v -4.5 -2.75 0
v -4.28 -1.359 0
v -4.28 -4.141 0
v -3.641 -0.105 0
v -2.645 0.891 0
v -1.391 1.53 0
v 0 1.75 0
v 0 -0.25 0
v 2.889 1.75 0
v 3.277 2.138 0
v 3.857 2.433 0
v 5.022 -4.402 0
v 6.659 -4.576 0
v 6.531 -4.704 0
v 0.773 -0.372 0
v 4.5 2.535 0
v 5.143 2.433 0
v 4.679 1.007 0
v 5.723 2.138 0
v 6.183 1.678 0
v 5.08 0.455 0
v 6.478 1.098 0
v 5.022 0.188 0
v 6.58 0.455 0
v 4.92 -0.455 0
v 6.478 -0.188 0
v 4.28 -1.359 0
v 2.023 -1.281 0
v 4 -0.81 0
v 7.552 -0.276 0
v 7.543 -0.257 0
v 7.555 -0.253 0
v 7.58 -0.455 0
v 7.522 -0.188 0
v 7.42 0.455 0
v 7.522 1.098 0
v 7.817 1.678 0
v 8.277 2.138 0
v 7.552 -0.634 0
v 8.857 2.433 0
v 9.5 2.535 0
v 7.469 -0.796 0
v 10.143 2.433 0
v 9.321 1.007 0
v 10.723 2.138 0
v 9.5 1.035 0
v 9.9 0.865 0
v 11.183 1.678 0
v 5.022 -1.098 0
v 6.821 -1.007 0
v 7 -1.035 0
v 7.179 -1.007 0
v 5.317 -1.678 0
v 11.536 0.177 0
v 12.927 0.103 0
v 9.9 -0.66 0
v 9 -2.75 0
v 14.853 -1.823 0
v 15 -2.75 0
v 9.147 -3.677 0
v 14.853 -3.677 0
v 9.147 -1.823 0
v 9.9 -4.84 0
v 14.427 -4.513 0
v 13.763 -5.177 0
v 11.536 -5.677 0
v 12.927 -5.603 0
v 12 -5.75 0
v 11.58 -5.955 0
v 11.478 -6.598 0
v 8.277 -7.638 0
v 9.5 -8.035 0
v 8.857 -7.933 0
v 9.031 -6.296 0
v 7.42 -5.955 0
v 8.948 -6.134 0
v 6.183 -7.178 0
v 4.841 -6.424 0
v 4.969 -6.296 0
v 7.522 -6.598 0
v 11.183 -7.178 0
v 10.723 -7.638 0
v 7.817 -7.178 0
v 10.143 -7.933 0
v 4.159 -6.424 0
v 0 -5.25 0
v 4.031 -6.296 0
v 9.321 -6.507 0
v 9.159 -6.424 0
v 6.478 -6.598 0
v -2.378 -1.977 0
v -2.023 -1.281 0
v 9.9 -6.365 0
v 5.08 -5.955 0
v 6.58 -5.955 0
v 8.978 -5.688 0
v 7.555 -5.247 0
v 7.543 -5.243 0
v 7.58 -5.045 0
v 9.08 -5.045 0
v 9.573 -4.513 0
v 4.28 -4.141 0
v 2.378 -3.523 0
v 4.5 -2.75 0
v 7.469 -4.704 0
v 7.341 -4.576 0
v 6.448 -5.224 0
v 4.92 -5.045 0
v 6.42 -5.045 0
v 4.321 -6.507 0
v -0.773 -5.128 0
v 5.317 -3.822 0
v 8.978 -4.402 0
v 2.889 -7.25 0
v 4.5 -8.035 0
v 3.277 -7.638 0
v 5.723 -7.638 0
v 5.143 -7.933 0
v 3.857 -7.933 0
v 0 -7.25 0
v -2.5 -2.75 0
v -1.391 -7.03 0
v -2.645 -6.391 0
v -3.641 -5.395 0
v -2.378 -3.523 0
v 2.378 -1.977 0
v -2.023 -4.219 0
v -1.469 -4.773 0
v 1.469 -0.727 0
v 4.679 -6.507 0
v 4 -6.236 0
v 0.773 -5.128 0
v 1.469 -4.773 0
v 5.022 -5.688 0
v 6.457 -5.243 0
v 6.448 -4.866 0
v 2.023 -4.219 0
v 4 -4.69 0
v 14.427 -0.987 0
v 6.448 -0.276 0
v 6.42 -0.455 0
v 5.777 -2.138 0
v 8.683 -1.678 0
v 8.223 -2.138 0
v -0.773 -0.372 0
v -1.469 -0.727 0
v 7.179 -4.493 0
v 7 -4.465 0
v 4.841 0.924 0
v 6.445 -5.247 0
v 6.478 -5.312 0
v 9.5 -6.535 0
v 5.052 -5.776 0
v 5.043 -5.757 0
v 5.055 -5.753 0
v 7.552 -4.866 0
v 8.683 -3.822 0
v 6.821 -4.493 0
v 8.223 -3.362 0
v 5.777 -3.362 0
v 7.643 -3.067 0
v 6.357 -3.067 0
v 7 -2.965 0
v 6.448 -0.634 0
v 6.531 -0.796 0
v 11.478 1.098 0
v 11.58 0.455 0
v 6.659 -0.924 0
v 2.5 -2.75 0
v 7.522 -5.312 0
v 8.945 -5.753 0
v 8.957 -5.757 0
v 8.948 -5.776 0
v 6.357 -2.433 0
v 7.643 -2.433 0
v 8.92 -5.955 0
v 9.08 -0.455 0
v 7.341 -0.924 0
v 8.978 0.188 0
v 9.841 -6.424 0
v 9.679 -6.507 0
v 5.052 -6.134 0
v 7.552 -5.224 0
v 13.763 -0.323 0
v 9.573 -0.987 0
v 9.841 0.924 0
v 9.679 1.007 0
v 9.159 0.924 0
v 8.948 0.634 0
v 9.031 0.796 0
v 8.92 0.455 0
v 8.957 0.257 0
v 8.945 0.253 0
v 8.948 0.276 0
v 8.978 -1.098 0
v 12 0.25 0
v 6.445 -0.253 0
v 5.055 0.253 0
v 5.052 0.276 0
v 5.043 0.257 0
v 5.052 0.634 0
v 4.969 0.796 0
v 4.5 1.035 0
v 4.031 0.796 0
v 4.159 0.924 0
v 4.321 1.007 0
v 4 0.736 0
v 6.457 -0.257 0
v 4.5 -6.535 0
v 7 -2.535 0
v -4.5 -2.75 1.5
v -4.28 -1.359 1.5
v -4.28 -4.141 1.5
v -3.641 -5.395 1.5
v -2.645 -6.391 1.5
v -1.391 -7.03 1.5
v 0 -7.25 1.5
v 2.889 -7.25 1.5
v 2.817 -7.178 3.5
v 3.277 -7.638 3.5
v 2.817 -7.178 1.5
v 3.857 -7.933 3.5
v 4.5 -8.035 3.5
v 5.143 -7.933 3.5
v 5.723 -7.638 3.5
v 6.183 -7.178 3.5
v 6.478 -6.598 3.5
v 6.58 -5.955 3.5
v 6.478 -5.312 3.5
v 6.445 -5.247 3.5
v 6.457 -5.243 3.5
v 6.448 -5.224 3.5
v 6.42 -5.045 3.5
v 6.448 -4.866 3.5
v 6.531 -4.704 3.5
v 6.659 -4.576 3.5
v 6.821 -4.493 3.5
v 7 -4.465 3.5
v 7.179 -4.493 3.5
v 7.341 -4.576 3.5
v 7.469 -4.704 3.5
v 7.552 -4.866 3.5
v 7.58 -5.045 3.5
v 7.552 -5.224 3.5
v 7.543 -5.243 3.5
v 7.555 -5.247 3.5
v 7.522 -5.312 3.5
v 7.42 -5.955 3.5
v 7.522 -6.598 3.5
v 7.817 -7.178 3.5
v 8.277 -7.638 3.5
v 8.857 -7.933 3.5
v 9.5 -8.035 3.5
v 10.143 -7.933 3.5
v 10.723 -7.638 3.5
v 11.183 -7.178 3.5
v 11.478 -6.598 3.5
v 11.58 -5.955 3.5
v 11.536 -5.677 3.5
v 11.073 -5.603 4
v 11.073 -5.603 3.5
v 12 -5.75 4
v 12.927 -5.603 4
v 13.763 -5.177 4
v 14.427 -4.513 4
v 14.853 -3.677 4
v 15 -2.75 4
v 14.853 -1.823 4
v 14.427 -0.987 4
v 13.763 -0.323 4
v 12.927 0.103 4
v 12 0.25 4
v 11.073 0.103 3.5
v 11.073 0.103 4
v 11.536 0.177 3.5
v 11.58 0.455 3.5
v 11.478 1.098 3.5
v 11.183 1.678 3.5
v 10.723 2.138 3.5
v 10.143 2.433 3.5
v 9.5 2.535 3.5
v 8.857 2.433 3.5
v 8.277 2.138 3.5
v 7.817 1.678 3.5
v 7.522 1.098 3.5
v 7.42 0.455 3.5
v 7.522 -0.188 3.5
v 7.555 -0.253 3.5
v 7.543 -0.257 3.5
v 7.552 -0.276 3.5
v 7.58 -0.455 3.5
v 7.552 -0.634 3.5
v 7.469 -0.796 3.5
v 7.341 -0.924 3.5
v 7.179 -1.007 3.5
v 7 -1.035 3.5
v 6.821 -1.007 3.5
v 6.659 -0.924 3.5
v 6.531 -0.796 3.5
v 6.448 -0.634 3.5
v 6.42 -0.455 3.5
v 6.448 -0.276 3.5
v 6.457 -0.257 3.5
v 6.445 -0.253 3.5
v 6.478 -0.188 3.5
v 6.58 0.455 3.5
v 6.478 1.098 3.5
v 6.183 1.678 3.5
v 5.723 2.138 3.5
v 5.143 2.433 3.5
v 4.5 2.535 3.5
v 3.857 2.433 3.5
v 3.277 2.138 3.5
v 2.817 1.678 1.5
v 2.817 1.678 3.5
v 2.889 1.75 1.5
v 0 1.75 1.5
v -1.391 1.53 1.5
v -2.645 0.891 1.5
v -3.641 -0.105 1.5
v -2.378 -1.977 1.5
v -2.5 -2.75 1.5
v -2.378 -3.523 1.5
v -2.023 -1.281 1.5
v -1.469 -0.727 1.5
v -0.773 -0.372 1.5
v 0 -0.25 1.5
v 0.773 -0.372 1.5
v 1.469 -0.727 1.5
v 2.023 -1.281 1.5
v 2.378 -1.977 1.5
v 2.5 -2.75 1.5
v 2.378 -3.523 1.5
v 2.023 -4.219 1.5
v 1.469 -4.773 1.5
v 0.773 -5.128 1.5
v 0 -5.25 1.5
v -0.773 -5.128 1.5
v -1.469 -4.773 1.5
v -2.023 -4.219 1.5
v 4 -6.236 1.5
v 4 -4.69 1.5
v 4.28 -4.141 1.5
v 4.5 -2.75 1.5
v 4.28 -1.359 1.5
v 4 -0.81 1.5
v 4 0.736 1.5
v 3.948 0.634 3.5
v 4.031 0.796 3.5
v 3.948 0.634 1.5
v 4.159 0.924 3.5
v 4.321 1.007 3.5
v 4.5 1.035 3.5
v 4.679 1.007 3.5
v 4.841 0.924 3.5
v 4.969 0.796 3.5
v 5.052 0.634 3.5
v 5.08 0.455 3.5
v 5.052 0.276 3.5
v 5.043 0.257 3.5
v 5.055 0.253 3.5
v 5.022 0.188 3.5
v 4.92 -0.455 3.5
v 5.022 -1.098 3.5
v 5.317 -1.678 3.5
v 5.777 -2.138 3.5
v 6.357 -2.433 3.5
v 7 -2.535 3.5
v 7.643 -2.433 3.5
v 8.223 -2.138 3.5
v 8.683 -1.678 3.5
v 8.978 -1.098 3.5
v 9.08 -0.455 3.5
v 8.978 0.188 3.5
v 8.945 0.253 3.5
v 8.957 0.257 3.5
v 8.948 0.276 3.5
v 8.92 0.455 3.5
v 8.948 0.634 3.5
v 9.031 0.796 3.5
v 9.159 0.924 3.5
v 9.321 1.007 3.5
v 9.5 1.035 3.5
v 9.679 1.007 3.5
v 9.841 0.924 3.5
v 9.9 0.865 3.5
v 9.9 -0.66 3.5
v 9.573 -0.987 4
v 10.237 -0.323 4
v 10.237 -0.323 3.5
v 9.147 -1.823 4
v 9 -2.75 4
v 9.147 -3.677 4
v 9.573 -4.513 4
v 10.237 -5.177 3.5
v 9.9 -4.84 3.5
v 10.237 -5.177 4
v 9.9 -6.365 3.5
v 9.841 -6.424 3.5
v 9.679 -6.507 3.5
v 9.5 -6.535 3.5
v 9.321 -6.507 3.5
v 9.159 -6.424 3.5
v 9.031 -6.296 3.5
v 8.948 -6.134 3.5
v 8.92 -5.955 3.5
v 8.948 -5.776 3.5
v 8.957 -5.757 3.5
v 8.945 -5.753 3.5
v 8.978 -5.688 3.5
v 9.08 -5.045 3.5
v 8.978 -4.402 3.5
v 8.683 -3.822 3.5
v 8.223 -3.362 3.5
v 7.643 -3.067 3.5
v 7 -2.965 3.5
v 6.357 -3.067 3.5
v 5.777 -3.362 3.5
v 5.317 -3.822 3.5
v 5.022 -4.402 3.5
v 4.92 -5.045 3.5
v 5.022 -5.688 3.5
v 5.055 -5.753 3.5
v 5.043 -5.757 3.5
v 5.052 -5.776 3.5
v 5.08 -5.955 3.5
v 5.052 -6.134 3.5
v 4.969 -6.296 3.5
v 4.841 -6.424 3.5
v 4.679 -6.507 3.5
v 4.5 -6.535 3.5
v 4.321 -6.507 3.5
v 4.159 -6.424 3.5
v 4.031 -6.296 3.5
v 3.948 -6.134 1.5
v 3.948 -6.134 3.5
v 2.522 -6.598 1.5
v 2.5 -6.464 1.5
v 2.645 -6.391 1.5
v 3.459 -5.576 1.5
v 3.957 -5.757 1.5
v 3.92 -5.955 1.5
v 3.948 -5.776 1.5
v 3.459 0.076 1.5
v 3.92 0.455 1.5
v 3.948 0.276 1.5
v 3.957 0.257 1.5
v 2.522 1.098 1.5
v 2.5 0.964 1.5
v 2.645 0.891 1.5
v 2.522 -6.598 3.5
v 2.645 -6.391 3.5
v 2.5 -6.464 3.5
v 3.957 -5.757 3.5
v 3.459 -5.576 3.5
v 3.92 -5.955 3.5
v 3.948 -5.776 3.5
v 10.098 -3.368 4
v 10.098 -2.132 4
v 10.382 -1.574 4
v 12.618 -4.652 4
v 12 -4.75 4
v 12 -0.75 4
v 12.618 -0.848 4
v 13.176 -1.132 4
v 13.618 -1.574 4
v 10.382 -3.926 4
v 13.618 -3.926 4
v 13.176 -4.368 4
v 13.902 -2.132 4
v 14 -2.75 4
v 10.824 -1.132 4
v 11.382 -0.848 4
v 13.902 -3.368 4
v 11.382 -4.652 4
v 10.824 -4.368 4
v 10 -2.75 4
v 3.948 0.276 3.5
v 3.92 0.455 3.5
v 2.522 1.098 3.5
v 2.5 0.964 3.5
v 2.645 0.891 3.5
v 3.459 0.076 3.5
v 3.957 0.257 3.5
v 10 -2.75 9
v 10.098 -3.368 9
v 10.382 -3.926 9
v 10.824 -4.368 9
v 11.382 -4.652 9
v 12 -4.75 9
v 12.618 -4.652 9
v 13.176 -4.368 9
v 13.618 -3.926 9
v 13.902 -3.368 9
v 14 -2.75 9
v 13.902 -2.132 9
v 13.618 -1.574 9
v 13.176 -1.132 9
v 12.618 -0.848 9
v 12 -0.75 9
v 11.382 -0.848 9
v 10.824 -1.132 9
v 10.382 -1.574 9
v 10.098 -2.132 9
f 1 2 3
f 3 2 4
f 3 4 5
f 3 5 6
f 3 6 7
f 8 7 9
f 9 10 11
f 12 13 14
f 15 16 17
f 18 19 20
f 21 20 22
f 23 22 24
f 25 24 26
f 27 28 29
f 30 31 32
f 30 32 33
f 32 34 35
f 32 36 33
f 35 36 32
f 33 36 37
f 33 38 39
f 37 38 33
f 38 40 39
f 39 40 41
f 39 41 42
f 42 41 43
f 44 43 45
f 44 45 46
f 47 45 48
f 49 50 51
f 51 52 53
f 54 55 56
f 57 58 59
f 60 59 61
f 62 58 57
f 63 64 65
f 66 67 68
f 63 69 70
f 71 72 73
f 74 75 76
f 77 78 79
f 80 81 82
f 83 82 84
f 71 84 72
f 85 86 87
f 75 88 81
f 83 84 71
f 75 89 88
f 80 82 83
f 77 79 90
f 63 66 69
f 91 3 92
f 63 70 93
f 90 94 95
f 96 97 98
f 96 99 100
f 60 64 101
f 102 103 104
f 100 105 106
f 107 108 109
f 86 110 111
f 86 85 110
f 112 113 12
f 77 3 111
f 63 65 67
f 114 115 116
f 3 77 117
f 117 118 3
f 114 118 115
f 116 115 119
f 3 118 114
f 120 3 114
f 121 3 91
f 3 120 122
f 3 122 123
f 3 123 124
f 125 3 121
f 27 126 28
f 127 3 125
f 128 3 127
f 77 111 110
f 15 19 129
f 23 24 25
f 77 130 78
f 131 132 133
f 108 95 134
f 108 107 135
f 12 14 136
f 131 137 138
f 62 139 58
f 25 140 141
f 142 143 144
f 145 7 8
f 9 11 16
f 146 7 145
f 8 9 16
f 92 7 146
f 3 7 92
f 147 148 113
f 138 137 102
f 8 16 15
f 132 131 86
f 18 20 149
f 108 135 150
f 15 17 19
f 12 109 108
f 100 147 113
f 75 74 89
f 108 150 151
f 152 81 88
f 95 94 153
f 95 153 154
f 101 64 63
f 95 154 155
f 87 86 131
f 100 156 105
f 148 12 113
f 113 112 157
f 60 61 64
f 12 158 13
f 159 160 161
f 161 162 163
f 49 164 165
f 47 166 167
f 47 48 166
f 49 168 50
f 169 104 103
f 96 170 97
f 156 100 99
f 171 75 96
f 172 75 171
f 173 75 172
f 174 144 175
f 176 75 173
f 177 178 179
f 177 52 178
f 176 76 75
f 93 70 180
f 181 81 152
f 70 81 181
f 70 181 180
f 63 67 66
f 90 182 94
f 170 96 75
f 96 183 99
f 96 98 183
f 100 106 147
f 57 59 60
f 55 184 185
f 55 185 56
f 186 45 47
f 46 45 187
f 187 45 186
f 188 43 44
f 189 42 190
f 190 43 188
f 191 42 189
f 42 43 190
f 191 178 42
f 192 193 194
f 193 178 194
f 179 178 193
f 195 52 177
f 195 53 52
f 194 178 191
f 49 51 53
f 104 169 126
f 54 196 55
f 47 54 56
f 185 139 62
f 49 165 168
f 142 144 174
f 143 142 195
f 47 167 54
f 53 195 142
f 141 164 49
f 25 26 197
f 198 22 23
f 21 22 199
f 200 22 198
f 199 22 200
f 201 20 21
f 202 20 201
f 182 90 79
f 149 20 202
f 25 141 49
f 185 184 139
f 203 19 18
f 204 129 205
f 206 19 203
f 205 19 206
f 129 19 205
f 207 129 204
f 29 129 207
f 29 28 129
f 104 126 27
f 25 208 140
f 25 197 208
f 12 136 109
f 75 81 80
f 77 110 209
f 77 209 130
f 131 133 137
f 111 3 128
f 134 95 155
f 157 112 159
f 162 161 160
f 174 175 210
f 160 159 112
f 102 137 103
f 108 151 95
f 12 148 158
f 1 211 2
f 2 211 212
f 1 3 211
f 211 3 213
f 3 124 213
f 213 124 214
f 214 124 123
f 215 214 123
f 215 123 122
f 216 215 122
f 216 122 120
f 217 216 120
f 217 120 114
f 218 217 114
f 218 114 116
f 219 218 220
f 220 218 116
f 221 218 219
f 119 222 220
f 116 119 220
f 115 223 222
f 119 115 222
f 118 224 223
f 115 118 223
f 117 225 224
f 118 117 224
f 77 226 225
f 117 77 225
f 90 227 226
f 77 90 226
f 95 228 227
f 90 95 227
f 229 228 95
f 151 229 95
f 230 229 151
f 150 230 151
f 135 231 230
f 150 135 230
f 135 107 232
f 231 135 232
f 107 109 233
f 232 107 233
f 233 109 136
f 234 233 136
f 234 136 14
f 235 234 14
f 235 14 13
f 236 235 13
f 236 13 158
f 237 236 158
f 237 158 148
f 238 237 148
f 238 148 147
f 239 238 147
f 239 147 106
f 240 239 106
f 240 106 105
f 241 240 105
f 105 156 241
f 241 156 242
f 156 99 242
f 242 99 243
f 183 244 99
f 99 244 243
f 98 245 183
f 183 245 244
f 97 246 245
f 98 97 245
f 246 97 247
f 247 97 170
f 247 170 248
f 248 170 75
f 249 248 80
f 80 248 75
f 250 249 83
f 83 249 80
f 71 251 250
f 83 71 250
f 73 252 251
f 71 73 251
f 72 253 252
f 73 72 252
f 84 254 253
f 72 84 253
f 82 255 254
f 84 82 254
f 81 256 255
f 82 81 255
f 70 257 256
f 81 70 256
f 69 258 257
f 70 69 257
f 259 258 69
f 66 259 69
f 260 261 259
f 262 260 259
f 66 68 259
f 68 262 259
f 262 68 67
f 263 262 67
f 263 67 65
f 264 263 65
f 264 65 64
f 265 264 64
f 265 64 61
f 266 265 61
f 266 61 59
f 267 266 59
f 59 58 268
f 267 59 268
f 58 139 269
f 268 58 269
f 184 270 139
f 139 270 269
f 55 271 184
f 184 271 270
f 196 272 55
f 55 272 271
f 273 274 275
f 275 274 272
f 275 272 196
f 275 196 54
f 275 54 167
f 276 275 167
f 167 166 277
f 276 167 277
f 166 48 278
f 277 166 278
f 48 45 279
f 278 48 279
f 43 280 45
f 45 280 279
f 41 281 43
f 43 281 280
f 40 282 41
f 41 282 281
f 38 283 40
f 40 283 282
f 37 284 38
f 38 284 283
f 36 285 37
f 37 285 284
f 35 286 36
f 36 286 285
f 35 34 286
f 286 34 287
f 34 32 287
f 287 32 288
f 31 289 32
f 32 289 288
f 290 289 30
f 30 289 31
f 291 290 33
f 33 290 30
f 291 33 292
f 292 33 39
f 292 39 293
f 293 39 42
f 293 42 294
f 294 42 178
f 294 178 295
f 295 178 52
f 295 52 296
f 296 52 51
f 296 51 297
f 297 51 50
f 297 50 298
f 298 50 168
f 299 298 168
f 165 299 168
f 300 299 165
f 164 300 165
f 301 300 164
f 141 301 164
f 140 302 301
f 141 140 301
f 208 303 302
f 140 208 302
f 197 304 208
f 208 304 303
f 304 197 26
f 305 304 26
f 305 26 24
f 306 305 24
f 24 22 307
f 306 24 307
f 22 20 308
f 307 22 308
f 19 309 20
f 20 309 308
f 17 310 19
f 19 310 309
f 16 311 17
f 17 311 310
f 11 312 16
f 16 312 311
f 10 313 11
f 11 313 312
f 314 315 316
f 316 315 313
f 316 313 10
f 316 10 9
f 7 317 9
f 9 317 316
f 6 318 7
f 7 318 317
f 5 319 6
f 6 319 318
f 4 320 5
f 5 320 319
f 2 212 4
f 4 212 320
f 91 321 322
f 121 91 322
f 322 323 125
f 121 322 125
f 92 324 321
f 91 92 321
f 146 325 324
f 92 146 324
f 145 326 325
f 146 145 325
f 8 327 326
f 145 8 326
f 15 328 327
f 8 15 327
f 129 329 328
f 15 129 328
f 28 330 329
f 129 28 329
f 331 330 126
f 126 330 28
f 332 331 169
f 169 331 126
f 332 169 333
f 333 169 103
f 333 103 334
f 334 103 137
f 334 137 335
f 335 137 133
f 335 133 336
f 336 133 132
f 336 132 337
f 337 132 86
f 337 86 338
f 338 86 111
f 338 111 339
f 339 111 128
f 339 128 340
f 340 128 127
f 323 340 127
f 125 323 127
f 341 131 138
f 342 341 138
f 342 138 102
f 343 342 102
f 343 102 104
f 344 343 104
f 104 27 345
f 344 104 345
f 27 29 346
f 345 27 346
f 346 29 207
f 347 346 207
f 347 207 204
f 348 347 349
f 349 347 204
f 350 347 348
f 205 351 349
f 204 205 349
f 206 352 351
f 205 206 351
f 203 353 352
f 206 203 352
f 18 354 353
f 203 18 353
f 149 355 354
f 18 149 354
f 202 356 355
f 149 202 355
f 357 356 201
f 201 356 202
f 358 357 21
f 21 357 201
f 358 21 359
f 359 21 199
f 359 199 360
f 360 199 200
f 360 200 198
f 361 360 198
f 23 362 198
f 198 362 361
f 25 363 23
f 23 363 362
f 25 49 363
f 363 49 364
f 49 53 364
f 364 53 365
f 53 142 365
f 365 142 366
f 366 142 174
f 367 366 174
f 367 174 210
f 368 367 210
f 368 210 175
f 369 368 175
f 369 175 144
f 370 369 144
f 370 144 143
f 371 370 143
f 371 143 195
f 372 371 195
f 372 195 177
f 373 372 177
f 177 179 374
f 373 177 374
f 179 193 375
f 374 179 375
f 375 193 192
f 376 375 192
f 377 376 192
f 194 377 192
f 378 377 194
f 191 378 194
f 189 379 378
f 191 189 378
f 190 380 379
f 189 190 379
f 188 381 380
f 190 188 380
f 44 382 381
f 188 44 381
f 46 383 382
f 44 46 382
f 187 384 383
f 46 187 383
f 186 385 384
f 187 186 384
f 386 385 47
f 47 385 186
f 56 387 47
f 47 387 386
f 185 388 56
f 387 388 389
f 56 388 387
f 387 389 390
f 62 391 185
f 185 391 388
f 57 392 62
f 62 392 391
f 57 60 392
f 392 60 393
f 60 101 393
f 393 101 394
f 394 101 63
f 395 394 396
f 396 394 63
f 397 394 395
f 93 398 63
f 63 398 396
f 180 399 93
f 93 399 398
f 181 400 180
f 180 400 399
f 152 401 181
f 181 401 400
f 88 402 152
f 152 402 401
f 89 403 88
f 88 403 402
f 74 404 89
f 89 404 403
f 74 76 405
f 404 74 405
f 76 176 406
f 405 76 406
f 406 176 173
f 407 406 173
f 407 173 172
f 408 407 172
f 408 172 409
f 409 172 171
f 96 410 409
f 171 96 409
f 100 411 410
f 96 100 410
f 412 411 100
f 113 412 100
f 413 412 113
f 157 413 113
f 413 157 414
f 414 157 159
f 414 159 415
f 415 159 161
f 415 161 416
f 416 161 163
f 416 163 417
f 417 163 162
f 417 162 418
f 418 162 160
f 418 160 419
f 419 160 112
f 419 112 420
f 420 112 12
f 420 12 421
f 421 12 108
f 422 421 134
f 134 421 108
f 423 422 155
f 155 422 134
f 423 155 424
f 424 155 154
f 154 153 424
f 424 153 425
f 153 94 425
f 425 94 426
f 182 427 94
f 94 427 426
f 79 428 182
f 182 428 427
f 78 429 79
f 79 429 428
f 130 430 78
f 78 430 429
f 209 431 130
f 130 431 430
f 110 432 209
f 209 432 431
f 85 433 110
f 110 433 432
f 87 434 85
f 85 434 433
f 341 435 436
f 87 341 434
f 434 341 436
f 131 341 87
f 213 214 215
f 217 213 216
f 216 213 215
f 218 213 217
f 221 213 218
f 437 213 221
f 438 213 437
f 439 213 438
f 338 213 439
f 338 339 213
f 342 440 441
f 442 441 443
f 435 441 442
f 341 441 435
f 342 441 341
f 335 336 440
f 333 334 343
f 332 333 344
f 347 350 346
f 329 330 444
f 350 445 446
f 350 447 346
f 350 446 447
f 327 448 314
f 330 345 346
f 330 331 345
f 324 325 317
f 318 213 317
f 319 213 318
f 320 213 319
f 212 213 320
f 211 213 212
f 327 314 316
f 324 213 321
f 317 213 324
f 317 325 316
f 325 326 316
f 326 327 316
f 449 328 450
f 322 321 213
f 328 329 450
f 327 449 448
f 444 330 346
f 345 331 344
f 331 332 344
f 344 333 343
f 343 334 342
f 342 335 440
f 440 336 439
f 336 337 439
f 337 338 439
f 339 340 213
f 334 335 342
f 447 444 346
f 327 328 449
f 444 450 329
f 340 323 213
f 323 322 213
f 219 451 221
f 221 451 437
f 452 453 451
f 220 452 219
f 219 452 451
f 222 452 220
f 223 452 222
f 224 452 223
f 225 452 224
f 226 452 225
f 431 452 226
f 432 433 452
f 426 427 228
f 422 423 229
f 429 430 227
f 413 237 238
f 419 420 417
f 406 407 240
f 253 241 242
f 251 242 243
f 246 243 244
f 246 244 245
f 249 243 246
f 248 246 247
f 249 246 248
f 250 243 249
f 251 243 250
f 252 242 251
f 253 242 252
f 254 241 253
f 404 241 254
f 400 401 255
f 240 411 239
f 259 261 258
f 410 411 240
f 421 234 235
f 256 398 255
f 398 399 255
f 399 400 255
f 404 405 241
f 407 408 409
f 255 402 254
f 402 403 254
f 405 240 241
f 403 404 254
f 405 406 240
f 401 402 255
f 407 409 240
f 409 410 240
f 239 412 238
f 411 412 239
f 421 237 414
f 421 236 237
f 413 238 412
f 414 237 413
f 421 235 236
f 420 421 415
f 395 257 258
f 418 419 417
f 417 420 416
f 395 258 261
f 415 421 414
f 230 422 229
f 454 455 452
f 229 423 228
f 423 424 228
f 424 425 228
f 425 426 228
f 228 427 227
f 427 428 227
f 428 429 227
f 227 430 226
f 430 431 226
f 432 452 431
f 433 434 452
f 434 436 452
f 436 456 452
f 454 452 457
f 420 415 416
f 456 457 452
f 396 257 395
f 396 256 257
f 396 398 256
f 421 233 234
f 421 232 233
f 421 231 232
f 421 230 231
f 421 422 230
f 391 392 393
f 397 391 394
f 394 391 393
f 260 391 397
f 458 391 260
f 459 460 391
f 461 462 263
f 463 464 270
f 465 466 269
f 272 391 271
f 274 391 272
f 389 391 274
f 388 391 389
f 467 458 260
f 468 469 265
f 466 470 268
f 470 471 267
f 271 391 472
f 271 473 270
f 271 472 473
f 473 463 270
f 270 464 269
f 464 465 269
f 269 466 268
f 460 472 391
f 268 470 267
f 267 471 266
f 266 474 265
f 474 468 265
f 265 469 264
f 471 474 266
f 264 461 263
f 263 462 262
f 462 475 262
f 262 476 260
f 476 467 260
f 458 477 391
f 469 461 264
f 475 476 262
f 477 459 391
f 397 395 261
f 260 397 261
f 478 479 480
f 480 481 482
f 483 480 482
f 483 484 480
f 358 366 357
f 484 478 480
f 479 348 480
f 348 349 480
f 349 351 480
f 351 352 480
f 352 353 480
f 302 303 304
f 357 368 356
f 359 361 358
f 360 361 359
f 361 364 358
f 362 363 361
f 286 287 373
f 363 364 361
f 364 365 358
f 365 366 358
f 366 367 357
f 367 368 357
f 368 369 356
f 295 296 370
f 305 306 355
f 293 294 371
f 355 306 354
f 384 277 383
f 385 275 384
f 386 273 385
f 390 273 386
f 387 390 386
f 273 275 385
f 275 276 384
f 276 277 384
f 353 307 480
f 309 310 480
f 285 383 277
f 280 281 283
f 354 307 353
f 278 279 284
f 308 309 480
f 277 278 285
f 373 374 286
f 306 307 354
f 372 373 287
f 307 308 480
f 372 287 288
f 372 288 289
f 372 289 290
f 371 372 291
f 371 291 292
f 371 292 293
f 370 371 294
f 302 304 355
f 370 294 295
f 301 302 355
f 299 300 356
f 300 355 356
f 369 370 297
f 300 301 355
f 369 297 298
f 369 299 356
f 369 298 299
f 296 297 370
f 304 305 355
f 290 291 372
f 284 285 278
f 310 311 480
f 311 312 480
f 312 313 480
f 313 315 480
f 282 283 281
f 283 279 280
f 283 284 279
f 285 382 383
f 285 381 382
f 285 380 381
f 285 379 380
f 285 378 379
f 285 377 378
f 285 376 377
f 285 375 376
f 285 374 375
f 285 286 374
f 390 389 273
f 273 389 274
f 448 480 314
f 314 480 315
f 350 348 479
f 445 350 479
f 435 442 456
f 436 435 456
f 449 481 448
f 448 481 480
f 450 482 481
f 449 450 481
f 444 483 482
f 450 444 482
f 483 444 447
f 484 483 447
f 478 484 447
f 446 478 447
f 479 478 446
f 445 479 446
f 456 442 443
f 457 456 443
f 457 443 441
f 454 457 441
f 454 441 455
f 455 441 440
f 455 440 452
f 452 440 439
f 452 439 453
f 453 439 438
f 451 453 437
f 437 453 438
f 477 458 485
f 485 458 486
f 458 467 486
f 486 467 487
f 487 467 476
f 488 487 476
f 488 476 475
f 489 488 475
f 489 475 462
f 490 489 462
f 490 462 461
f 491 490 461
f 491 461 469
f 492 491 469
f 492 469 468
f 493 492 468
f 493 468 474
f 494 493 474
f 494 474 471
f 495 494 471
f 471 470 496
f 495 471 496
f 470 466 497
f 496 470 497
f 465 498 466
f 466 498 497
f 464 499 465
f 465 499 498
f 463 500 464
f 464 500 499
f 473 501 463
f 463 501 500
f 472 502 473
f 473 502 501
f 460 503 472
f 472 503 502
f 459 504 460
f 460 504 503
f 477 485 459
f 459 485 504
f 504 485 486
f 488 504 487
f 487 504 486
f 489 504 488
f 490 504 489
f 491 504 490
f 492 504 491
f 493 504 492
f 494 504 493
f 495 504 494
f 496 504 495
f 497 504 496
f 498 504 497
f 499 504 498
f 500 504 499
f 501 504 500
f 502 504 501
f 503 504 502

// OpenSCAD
// file: spring4.scad
/* Begin customizer.makerbot.com section. */

//length = 10;
//number_of_wiggles = 5;
//// The portion of the circle that appears in each wiggle
//angle = 220; // [180:360]
//// The width of the band of material
//width = 1.2;
//height = 2;
//// Circles are n-gons.  Choose n
//resolution = 100;

/* End customizer.makerbot.com section. */




module ring(outer, inner, h) {
  difference() {
    cylinder(h=h, r=outer);
    cylinder(h=h, r=inner);
  }
}

module arc_of_cylinder(r, h, angle /* angle must be <= 180 */) {
  half_angle = 90 - (angle / 2);
  difference() {
    cylinder(h=h, r=r);
    rotate(half_angle) translate([-r,0,0]) cube(size=r*2);
    rotate(-half_angle) translate([-r,0,0]) cube(size=r*2);
  }
}

module arc_of_ring(outer, inner, h, angle /* must be 180 <= angle <= 360 */) {
  difference() {
    ring(outer, inner, h);
    arc_of_cylinder(r=2*outer, h=h, angle=360 - angle);
  }
}

module spring4(length, n, angle /* must be 180 <= angle <= 360 */, width, height) {
  useful_intermediate_angle = 180 - angle / 2;
  echo(useful_intermediate_angle);
  path_radius = length / (2 * n * sin(useful_intermediate_angle));
  echo(path_radius);
  half_width = width / 2;
  inner = path_radius - half_width;
  outer = path_radius + half_width;  
  x_spacing = length / n;
  y_offset = length / (2 * n * tan(useful_intermediate_angle));
  epsilon = y_offset / 10000;   // Grr.
  adjusted_y_offset = y_offset - epsilon;
  union() for (i = [0 : n-1]) {
    translate([x_spacing * i, 0, 0])
      rotate([0,0,180 * i])   // mirror() works better
      translate([0, adjusted_y_offset, 0])
      arc_of_ring(outer, inner, height, angle);
  }
}

// With args from customizer.makerbot.com section above
//spring4(length, number_of_wiggles, angle, width, height, $fn=resolution);
// main file
include<spring4.scad>

motor_shaft_radius = 2.5;
drive_gear_radius = 4.5;
//Mk8
bearing_radius = 6.5;
//624ZZ
gear_slot_depth = 1.5;
//estimate
filament_diameter = 3;
spring_stretch = 0.5;

length = drive_gear_radius - gear_slot_depth + filament_diameter - spring_stretch + bearing_radius;
//length=4.5-1.5+3-0.5+6.5;
echo("length = ",length);

//length = 10;
number_of_wiggles = 3;
// The portion of the circle that appears in each wiggle
angle = 220; // [180:360]
// The width of the band of material
width = 1.5;
height = 3.5;
// Circles are n-gons.  Choose n
resolution = 20;

//spring4(length, number_of_wiggles, angle, width, height, $fn=resolution);

//difference(){
//import("mini.stl");
//translate([0,7,0]){cube([25,10,5]);};};

//spring4(length, number_of_wiggles, angle, width, height, $fn=resolution);

module spring1() {translate([4.5,0,0])spring4(length-4.5, number_of_wiggles, angle, width, height, $fn=resolution);};

difference(){spring1();translate([0,-2.75,height-2]){cylinder(r=4.5,h=height,$fn=resolution);};};
difference(){translate([0,-5.5,0])mirror([0,1,0]){spring1();};
	translate([0,-2.75,height-2]){cylinder(r=4.5,h=height,$fn=resolution);};};

translate([length,-2.75,0]){cylinder(r=3,h=height+0.5,$fn=resolution);}
translate([length,-2.75,height+0.5]){cylinder(r=2,h=5,$fn=resolution);}
translate([length-2.1,-6.5,0]){cube([width,7.5,height]);}

translate([0,-2.75,0]){ring(4.5,2.5,height-2,$fn=resolution);}
difference(){translate([0,-7.25,0]){cube([4,9,height-2]);};translate([0,-2.75,0]){cylinder(r=2.5,h=height-2,$fn=resolution);};};
